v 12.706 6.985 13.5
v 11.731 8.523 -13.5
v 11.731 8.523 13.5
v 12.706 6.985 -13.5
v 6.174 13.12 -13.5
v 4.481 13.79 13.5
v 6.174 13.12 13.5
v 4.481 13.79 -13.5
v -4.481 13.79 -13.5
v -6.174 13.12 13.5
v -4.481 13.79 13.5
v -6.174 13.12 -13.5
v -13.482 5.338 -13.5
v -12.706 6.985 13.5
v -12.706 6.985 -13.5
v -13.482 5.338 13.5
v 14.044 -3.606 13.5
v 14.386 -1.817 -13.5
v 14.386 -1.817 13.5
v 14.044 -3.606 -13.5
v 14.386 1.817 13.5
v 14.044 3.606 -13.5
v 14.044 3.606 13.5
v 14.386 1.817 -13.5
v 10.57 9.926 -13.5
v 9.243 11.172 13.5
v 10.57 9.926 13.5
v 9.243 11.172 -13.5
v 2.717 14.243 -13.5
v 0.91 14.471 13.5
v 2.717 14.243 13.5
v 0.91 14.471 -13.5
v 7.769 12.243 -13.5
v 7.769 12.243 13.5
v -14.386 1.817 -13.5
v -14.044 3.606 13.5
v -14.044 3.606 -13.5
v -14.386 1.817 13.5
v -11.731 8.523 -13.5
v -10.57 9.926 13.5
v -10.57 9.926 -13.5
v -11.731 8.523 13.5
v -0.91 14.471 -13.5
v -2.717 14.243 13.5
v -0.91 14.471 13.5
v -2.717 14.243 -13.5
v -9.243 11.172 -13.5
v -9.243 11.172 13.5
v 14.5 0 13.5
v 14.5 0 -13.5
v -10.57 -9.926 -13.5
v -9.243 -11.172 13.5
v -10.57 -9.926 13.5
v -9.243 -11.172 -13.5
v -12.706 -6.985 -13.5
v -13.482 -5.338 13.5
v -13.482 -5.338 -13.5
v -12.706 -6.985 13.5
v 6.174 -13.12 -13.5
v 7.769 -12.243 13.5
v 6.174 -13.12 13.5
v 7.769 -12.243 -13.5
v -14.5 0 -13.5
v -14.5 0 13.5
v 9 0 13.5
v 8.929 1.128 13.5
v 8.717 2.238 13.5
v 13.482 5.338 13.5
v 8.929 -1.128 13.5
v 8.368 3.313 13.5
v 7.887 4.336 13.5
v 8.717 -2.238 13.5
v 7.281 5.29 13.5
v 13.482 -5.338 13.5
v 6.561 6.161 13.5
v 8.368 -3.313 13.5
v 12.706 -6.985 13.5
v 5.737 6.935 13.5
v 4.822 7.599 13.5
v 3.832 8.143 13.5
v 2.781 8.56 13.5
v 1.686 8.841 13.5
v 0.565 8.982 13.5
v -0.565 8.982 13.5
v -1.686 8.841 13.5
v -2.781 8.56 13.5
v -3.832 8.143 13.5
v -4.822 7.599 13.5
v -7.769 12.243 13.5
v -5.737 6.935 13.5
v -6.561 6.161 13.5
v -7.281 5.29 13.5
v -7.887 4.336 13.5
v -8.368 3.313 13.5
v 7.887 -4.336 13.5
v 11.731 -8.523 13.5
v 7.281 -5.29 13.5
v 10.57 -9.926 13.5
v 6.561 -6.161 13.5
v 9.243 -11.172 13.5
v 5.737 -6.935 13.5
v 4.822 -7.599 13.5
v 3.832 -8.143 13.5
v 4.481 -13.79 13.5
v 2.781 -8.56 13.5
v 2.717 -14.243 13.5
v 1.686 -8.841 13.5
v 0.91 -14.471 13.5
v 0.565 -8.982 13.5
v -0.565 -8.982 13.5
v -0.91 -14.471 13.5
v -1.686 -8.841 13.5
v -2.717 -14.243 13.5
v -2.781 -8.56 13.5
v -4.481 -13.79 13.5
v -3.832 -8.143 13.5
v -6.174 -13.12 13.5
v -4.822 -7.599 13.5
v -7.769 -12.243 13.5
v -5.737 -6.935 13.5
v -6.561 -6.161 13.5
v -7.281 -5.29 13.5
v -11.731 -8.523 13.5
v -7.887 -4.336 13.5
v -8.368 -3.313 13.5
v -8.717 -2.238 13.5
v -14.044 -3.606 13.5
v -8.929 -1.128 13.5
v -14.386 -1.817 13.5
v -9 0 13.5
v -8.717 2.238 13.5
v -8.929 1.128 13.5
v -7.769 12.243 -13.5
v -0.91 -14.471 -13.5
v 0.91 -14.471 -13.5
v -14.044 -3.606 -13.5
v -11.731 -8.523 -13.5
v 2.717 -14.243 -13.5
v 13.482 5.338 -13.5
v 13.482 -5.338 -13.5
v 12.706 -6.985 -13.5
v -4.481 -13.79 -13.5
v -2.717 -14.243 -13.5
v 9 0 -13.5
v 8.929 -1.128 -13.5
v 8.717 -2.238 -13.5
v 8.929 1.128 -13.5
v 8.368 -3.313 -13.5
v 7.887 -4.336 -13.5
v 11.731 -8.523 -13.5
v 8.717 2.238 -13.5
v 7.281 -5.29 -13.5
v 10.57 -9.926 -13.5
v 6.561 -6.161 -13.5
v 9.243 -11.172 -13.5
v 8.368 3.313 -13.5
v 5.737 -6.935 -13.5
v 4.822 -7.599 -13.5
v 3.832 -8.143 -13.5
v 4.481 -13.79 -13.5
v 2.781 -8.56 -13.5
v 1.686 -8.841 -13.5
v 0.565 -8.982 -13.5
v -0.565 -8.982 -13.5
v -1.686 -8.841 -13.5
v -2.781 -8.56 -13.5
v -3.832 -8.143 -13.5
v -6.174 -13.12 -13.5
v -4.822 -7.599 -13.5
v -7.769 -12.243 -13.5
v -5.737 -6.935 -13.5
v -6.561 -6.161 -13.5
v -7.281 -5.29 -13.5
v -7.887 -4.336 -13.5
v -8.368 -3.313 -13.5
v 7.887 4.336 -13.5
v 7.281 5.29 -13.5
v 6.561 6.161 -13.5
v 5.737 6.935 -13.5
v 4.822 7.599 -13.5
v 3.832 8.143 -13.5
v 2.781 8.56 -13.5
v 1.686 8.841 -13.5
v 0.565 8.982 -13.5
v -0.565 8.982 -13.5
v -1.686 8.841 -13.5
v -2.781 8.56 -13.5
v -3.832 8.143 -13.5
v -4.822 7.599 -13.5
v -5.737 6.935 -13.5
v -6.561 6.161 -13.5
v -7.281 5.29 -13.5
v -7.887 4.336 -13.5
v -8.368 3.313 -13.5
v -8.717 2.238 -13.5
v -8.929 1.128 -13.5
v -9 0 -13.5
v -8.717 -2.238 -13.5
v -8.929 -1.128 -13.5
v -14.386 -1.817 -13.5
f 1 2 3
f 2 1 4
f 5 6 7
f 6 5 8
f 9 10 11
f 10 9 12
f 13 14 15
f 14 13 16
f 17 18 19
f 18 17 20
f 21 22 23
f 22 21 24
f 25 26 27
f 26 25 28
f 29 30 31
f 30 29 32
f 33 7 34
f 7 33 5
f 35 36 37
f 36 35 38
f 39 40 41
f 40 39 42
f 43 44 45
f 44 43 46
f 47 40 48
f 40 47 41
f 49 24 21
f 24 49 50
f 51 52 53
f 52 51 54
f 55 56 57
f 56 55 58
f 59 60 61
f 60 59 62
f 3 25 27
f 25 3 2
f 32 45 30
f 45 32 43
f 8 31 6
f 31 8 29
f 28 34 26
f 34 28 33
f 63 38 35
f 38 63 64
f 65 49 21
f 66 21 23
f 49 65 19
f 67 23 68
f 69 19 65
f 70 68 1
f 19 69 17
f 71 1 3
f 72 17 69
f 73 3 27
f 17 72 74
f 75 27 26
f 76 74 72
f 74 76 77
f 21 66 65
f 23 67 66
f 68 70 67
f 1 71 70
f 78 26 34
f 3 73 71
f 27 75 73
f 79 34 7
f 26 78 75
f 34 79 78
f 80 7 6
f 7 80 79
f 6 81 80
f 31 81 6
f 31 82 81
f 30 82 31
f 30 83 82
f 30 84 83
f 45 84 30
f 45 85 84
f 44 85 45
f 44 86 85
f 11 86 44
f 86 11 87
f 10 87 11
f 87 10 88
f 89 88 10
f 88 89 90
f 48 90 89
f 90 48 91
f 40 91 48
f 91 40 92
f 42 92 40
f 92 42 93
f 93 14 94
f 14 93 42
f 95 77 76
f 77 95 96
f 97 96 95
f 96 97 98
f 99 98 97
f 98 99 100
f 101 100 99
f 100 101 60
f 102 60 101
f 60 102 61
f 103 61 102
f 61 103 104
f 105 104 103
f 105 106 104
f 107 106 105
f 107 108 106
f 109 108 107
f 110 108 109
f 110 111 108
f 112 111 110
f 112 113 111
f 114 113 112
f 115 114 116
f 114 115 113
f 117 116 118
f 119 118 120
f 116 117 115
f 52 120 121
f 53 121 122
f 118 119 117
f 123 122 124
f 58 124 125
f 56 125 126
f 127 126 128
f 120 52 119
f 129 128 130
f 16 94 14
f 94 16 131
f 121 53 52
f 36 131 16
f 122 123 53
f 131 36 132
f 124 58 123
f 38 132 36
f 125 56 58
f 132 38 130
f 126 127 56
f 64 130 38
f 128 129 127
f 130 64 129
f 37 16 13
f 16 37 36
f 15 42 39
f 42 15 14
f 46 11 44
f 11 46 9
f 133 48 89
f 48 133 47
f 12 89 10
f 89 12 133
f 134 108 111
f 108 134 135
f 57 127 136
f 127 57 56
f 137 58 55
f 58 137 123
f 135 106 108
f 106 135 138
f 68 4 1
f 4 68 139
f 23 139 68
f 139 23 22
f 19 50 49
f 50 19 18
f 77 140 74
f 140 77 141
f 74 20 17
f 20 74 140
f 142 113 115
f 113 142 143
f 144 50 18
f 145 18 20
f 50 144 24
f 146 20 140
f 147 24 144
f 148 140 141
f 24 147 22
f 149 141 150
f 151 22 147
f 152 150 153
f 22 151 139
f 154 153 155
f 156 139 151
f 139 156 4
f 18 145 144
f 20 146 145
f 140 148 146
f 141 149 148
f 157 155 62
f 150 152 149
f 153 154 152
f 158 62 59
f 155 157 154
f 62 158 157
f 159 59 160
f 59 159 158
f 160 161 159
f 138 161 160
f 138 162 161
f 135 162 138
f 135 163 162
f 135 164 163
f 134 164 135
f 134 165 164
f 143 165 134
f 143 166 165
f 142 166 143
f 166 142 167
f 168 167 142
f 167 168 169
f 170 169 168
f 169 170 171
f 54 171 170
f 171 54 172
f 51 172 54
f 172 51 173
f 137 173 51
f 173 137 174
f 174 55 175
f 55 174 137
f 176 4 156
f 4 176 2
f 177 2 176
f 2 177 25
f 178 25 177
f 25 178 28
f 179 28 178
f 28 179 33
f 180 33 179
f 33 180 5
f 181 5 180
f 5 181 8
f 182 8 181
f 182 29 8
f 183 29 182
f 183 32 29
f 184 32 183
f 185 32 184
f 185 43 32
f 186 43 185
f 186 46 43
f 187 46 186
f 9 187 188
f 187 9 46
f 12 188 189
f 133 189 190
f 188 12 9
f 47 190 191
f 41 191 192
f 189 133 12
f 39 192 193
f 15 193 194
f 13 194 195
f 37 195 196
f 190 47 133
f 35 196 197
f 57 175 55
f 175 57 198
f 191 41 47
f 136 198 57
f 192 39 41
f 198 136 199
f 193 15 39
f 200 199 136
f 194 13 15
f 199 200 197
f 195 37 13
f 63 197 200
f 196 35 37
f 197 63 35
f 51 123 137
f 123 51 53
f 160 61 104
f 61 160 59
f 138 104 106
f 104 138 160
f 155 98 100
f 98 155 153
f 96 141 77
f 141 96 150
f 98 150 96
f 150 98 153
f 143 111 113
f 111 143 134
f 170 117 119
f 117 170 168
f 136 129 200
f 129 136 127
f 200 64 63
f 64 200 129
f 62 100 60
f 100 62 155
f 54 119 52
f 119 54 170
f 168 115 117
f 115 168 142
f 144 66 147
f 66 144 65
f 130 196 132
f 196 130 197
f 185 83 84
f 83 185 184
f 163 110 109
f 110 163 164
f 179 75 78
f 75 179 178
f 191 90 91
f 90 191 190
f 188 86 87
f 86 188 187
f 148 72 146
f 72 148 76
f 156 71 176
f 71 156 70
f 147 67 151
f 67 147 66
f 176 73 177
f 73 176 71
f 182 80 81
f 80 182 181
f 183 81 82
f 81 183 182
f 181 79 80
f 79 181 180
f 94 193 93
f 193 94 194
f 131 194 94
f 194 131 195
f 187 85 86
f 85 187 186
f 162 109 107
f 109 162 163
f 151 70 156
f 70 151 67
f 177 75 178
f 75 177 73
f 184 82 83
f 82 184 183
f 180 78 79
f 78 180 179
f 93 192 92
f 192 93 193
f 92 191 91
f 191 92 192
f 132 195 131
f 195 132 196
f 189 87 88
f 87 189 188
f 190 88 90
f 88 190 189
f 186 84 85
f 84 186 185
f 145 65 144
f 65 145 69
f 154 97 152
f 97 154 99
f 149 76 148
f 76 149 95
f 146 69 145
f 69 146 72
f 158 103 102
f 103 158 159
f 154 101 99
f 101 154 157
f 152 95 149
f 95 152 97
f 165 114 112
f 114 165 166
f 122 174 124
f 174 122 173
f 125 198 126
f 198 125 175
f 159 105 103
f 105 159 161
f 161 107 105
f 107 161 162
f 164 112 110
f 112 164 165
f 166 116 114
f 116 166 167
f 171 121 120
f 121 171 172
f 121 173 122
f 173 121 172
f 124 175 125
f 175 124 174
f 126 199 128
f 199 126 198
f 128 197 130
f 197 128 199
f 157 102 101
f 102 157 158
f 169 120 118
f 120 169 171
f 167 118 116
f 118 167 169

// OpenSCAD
$fn = 50;


difference() {
	union() {
		translate(v = [0, 0, -13.5000000000]) {
			cylinder(h = 27, r = 14.5000000000);
		}
	}
	union() {
		translate(v = [0, 0, -100.0000000000]) {
			cylinder(h = 200, r = 9);
		}
	}
}
